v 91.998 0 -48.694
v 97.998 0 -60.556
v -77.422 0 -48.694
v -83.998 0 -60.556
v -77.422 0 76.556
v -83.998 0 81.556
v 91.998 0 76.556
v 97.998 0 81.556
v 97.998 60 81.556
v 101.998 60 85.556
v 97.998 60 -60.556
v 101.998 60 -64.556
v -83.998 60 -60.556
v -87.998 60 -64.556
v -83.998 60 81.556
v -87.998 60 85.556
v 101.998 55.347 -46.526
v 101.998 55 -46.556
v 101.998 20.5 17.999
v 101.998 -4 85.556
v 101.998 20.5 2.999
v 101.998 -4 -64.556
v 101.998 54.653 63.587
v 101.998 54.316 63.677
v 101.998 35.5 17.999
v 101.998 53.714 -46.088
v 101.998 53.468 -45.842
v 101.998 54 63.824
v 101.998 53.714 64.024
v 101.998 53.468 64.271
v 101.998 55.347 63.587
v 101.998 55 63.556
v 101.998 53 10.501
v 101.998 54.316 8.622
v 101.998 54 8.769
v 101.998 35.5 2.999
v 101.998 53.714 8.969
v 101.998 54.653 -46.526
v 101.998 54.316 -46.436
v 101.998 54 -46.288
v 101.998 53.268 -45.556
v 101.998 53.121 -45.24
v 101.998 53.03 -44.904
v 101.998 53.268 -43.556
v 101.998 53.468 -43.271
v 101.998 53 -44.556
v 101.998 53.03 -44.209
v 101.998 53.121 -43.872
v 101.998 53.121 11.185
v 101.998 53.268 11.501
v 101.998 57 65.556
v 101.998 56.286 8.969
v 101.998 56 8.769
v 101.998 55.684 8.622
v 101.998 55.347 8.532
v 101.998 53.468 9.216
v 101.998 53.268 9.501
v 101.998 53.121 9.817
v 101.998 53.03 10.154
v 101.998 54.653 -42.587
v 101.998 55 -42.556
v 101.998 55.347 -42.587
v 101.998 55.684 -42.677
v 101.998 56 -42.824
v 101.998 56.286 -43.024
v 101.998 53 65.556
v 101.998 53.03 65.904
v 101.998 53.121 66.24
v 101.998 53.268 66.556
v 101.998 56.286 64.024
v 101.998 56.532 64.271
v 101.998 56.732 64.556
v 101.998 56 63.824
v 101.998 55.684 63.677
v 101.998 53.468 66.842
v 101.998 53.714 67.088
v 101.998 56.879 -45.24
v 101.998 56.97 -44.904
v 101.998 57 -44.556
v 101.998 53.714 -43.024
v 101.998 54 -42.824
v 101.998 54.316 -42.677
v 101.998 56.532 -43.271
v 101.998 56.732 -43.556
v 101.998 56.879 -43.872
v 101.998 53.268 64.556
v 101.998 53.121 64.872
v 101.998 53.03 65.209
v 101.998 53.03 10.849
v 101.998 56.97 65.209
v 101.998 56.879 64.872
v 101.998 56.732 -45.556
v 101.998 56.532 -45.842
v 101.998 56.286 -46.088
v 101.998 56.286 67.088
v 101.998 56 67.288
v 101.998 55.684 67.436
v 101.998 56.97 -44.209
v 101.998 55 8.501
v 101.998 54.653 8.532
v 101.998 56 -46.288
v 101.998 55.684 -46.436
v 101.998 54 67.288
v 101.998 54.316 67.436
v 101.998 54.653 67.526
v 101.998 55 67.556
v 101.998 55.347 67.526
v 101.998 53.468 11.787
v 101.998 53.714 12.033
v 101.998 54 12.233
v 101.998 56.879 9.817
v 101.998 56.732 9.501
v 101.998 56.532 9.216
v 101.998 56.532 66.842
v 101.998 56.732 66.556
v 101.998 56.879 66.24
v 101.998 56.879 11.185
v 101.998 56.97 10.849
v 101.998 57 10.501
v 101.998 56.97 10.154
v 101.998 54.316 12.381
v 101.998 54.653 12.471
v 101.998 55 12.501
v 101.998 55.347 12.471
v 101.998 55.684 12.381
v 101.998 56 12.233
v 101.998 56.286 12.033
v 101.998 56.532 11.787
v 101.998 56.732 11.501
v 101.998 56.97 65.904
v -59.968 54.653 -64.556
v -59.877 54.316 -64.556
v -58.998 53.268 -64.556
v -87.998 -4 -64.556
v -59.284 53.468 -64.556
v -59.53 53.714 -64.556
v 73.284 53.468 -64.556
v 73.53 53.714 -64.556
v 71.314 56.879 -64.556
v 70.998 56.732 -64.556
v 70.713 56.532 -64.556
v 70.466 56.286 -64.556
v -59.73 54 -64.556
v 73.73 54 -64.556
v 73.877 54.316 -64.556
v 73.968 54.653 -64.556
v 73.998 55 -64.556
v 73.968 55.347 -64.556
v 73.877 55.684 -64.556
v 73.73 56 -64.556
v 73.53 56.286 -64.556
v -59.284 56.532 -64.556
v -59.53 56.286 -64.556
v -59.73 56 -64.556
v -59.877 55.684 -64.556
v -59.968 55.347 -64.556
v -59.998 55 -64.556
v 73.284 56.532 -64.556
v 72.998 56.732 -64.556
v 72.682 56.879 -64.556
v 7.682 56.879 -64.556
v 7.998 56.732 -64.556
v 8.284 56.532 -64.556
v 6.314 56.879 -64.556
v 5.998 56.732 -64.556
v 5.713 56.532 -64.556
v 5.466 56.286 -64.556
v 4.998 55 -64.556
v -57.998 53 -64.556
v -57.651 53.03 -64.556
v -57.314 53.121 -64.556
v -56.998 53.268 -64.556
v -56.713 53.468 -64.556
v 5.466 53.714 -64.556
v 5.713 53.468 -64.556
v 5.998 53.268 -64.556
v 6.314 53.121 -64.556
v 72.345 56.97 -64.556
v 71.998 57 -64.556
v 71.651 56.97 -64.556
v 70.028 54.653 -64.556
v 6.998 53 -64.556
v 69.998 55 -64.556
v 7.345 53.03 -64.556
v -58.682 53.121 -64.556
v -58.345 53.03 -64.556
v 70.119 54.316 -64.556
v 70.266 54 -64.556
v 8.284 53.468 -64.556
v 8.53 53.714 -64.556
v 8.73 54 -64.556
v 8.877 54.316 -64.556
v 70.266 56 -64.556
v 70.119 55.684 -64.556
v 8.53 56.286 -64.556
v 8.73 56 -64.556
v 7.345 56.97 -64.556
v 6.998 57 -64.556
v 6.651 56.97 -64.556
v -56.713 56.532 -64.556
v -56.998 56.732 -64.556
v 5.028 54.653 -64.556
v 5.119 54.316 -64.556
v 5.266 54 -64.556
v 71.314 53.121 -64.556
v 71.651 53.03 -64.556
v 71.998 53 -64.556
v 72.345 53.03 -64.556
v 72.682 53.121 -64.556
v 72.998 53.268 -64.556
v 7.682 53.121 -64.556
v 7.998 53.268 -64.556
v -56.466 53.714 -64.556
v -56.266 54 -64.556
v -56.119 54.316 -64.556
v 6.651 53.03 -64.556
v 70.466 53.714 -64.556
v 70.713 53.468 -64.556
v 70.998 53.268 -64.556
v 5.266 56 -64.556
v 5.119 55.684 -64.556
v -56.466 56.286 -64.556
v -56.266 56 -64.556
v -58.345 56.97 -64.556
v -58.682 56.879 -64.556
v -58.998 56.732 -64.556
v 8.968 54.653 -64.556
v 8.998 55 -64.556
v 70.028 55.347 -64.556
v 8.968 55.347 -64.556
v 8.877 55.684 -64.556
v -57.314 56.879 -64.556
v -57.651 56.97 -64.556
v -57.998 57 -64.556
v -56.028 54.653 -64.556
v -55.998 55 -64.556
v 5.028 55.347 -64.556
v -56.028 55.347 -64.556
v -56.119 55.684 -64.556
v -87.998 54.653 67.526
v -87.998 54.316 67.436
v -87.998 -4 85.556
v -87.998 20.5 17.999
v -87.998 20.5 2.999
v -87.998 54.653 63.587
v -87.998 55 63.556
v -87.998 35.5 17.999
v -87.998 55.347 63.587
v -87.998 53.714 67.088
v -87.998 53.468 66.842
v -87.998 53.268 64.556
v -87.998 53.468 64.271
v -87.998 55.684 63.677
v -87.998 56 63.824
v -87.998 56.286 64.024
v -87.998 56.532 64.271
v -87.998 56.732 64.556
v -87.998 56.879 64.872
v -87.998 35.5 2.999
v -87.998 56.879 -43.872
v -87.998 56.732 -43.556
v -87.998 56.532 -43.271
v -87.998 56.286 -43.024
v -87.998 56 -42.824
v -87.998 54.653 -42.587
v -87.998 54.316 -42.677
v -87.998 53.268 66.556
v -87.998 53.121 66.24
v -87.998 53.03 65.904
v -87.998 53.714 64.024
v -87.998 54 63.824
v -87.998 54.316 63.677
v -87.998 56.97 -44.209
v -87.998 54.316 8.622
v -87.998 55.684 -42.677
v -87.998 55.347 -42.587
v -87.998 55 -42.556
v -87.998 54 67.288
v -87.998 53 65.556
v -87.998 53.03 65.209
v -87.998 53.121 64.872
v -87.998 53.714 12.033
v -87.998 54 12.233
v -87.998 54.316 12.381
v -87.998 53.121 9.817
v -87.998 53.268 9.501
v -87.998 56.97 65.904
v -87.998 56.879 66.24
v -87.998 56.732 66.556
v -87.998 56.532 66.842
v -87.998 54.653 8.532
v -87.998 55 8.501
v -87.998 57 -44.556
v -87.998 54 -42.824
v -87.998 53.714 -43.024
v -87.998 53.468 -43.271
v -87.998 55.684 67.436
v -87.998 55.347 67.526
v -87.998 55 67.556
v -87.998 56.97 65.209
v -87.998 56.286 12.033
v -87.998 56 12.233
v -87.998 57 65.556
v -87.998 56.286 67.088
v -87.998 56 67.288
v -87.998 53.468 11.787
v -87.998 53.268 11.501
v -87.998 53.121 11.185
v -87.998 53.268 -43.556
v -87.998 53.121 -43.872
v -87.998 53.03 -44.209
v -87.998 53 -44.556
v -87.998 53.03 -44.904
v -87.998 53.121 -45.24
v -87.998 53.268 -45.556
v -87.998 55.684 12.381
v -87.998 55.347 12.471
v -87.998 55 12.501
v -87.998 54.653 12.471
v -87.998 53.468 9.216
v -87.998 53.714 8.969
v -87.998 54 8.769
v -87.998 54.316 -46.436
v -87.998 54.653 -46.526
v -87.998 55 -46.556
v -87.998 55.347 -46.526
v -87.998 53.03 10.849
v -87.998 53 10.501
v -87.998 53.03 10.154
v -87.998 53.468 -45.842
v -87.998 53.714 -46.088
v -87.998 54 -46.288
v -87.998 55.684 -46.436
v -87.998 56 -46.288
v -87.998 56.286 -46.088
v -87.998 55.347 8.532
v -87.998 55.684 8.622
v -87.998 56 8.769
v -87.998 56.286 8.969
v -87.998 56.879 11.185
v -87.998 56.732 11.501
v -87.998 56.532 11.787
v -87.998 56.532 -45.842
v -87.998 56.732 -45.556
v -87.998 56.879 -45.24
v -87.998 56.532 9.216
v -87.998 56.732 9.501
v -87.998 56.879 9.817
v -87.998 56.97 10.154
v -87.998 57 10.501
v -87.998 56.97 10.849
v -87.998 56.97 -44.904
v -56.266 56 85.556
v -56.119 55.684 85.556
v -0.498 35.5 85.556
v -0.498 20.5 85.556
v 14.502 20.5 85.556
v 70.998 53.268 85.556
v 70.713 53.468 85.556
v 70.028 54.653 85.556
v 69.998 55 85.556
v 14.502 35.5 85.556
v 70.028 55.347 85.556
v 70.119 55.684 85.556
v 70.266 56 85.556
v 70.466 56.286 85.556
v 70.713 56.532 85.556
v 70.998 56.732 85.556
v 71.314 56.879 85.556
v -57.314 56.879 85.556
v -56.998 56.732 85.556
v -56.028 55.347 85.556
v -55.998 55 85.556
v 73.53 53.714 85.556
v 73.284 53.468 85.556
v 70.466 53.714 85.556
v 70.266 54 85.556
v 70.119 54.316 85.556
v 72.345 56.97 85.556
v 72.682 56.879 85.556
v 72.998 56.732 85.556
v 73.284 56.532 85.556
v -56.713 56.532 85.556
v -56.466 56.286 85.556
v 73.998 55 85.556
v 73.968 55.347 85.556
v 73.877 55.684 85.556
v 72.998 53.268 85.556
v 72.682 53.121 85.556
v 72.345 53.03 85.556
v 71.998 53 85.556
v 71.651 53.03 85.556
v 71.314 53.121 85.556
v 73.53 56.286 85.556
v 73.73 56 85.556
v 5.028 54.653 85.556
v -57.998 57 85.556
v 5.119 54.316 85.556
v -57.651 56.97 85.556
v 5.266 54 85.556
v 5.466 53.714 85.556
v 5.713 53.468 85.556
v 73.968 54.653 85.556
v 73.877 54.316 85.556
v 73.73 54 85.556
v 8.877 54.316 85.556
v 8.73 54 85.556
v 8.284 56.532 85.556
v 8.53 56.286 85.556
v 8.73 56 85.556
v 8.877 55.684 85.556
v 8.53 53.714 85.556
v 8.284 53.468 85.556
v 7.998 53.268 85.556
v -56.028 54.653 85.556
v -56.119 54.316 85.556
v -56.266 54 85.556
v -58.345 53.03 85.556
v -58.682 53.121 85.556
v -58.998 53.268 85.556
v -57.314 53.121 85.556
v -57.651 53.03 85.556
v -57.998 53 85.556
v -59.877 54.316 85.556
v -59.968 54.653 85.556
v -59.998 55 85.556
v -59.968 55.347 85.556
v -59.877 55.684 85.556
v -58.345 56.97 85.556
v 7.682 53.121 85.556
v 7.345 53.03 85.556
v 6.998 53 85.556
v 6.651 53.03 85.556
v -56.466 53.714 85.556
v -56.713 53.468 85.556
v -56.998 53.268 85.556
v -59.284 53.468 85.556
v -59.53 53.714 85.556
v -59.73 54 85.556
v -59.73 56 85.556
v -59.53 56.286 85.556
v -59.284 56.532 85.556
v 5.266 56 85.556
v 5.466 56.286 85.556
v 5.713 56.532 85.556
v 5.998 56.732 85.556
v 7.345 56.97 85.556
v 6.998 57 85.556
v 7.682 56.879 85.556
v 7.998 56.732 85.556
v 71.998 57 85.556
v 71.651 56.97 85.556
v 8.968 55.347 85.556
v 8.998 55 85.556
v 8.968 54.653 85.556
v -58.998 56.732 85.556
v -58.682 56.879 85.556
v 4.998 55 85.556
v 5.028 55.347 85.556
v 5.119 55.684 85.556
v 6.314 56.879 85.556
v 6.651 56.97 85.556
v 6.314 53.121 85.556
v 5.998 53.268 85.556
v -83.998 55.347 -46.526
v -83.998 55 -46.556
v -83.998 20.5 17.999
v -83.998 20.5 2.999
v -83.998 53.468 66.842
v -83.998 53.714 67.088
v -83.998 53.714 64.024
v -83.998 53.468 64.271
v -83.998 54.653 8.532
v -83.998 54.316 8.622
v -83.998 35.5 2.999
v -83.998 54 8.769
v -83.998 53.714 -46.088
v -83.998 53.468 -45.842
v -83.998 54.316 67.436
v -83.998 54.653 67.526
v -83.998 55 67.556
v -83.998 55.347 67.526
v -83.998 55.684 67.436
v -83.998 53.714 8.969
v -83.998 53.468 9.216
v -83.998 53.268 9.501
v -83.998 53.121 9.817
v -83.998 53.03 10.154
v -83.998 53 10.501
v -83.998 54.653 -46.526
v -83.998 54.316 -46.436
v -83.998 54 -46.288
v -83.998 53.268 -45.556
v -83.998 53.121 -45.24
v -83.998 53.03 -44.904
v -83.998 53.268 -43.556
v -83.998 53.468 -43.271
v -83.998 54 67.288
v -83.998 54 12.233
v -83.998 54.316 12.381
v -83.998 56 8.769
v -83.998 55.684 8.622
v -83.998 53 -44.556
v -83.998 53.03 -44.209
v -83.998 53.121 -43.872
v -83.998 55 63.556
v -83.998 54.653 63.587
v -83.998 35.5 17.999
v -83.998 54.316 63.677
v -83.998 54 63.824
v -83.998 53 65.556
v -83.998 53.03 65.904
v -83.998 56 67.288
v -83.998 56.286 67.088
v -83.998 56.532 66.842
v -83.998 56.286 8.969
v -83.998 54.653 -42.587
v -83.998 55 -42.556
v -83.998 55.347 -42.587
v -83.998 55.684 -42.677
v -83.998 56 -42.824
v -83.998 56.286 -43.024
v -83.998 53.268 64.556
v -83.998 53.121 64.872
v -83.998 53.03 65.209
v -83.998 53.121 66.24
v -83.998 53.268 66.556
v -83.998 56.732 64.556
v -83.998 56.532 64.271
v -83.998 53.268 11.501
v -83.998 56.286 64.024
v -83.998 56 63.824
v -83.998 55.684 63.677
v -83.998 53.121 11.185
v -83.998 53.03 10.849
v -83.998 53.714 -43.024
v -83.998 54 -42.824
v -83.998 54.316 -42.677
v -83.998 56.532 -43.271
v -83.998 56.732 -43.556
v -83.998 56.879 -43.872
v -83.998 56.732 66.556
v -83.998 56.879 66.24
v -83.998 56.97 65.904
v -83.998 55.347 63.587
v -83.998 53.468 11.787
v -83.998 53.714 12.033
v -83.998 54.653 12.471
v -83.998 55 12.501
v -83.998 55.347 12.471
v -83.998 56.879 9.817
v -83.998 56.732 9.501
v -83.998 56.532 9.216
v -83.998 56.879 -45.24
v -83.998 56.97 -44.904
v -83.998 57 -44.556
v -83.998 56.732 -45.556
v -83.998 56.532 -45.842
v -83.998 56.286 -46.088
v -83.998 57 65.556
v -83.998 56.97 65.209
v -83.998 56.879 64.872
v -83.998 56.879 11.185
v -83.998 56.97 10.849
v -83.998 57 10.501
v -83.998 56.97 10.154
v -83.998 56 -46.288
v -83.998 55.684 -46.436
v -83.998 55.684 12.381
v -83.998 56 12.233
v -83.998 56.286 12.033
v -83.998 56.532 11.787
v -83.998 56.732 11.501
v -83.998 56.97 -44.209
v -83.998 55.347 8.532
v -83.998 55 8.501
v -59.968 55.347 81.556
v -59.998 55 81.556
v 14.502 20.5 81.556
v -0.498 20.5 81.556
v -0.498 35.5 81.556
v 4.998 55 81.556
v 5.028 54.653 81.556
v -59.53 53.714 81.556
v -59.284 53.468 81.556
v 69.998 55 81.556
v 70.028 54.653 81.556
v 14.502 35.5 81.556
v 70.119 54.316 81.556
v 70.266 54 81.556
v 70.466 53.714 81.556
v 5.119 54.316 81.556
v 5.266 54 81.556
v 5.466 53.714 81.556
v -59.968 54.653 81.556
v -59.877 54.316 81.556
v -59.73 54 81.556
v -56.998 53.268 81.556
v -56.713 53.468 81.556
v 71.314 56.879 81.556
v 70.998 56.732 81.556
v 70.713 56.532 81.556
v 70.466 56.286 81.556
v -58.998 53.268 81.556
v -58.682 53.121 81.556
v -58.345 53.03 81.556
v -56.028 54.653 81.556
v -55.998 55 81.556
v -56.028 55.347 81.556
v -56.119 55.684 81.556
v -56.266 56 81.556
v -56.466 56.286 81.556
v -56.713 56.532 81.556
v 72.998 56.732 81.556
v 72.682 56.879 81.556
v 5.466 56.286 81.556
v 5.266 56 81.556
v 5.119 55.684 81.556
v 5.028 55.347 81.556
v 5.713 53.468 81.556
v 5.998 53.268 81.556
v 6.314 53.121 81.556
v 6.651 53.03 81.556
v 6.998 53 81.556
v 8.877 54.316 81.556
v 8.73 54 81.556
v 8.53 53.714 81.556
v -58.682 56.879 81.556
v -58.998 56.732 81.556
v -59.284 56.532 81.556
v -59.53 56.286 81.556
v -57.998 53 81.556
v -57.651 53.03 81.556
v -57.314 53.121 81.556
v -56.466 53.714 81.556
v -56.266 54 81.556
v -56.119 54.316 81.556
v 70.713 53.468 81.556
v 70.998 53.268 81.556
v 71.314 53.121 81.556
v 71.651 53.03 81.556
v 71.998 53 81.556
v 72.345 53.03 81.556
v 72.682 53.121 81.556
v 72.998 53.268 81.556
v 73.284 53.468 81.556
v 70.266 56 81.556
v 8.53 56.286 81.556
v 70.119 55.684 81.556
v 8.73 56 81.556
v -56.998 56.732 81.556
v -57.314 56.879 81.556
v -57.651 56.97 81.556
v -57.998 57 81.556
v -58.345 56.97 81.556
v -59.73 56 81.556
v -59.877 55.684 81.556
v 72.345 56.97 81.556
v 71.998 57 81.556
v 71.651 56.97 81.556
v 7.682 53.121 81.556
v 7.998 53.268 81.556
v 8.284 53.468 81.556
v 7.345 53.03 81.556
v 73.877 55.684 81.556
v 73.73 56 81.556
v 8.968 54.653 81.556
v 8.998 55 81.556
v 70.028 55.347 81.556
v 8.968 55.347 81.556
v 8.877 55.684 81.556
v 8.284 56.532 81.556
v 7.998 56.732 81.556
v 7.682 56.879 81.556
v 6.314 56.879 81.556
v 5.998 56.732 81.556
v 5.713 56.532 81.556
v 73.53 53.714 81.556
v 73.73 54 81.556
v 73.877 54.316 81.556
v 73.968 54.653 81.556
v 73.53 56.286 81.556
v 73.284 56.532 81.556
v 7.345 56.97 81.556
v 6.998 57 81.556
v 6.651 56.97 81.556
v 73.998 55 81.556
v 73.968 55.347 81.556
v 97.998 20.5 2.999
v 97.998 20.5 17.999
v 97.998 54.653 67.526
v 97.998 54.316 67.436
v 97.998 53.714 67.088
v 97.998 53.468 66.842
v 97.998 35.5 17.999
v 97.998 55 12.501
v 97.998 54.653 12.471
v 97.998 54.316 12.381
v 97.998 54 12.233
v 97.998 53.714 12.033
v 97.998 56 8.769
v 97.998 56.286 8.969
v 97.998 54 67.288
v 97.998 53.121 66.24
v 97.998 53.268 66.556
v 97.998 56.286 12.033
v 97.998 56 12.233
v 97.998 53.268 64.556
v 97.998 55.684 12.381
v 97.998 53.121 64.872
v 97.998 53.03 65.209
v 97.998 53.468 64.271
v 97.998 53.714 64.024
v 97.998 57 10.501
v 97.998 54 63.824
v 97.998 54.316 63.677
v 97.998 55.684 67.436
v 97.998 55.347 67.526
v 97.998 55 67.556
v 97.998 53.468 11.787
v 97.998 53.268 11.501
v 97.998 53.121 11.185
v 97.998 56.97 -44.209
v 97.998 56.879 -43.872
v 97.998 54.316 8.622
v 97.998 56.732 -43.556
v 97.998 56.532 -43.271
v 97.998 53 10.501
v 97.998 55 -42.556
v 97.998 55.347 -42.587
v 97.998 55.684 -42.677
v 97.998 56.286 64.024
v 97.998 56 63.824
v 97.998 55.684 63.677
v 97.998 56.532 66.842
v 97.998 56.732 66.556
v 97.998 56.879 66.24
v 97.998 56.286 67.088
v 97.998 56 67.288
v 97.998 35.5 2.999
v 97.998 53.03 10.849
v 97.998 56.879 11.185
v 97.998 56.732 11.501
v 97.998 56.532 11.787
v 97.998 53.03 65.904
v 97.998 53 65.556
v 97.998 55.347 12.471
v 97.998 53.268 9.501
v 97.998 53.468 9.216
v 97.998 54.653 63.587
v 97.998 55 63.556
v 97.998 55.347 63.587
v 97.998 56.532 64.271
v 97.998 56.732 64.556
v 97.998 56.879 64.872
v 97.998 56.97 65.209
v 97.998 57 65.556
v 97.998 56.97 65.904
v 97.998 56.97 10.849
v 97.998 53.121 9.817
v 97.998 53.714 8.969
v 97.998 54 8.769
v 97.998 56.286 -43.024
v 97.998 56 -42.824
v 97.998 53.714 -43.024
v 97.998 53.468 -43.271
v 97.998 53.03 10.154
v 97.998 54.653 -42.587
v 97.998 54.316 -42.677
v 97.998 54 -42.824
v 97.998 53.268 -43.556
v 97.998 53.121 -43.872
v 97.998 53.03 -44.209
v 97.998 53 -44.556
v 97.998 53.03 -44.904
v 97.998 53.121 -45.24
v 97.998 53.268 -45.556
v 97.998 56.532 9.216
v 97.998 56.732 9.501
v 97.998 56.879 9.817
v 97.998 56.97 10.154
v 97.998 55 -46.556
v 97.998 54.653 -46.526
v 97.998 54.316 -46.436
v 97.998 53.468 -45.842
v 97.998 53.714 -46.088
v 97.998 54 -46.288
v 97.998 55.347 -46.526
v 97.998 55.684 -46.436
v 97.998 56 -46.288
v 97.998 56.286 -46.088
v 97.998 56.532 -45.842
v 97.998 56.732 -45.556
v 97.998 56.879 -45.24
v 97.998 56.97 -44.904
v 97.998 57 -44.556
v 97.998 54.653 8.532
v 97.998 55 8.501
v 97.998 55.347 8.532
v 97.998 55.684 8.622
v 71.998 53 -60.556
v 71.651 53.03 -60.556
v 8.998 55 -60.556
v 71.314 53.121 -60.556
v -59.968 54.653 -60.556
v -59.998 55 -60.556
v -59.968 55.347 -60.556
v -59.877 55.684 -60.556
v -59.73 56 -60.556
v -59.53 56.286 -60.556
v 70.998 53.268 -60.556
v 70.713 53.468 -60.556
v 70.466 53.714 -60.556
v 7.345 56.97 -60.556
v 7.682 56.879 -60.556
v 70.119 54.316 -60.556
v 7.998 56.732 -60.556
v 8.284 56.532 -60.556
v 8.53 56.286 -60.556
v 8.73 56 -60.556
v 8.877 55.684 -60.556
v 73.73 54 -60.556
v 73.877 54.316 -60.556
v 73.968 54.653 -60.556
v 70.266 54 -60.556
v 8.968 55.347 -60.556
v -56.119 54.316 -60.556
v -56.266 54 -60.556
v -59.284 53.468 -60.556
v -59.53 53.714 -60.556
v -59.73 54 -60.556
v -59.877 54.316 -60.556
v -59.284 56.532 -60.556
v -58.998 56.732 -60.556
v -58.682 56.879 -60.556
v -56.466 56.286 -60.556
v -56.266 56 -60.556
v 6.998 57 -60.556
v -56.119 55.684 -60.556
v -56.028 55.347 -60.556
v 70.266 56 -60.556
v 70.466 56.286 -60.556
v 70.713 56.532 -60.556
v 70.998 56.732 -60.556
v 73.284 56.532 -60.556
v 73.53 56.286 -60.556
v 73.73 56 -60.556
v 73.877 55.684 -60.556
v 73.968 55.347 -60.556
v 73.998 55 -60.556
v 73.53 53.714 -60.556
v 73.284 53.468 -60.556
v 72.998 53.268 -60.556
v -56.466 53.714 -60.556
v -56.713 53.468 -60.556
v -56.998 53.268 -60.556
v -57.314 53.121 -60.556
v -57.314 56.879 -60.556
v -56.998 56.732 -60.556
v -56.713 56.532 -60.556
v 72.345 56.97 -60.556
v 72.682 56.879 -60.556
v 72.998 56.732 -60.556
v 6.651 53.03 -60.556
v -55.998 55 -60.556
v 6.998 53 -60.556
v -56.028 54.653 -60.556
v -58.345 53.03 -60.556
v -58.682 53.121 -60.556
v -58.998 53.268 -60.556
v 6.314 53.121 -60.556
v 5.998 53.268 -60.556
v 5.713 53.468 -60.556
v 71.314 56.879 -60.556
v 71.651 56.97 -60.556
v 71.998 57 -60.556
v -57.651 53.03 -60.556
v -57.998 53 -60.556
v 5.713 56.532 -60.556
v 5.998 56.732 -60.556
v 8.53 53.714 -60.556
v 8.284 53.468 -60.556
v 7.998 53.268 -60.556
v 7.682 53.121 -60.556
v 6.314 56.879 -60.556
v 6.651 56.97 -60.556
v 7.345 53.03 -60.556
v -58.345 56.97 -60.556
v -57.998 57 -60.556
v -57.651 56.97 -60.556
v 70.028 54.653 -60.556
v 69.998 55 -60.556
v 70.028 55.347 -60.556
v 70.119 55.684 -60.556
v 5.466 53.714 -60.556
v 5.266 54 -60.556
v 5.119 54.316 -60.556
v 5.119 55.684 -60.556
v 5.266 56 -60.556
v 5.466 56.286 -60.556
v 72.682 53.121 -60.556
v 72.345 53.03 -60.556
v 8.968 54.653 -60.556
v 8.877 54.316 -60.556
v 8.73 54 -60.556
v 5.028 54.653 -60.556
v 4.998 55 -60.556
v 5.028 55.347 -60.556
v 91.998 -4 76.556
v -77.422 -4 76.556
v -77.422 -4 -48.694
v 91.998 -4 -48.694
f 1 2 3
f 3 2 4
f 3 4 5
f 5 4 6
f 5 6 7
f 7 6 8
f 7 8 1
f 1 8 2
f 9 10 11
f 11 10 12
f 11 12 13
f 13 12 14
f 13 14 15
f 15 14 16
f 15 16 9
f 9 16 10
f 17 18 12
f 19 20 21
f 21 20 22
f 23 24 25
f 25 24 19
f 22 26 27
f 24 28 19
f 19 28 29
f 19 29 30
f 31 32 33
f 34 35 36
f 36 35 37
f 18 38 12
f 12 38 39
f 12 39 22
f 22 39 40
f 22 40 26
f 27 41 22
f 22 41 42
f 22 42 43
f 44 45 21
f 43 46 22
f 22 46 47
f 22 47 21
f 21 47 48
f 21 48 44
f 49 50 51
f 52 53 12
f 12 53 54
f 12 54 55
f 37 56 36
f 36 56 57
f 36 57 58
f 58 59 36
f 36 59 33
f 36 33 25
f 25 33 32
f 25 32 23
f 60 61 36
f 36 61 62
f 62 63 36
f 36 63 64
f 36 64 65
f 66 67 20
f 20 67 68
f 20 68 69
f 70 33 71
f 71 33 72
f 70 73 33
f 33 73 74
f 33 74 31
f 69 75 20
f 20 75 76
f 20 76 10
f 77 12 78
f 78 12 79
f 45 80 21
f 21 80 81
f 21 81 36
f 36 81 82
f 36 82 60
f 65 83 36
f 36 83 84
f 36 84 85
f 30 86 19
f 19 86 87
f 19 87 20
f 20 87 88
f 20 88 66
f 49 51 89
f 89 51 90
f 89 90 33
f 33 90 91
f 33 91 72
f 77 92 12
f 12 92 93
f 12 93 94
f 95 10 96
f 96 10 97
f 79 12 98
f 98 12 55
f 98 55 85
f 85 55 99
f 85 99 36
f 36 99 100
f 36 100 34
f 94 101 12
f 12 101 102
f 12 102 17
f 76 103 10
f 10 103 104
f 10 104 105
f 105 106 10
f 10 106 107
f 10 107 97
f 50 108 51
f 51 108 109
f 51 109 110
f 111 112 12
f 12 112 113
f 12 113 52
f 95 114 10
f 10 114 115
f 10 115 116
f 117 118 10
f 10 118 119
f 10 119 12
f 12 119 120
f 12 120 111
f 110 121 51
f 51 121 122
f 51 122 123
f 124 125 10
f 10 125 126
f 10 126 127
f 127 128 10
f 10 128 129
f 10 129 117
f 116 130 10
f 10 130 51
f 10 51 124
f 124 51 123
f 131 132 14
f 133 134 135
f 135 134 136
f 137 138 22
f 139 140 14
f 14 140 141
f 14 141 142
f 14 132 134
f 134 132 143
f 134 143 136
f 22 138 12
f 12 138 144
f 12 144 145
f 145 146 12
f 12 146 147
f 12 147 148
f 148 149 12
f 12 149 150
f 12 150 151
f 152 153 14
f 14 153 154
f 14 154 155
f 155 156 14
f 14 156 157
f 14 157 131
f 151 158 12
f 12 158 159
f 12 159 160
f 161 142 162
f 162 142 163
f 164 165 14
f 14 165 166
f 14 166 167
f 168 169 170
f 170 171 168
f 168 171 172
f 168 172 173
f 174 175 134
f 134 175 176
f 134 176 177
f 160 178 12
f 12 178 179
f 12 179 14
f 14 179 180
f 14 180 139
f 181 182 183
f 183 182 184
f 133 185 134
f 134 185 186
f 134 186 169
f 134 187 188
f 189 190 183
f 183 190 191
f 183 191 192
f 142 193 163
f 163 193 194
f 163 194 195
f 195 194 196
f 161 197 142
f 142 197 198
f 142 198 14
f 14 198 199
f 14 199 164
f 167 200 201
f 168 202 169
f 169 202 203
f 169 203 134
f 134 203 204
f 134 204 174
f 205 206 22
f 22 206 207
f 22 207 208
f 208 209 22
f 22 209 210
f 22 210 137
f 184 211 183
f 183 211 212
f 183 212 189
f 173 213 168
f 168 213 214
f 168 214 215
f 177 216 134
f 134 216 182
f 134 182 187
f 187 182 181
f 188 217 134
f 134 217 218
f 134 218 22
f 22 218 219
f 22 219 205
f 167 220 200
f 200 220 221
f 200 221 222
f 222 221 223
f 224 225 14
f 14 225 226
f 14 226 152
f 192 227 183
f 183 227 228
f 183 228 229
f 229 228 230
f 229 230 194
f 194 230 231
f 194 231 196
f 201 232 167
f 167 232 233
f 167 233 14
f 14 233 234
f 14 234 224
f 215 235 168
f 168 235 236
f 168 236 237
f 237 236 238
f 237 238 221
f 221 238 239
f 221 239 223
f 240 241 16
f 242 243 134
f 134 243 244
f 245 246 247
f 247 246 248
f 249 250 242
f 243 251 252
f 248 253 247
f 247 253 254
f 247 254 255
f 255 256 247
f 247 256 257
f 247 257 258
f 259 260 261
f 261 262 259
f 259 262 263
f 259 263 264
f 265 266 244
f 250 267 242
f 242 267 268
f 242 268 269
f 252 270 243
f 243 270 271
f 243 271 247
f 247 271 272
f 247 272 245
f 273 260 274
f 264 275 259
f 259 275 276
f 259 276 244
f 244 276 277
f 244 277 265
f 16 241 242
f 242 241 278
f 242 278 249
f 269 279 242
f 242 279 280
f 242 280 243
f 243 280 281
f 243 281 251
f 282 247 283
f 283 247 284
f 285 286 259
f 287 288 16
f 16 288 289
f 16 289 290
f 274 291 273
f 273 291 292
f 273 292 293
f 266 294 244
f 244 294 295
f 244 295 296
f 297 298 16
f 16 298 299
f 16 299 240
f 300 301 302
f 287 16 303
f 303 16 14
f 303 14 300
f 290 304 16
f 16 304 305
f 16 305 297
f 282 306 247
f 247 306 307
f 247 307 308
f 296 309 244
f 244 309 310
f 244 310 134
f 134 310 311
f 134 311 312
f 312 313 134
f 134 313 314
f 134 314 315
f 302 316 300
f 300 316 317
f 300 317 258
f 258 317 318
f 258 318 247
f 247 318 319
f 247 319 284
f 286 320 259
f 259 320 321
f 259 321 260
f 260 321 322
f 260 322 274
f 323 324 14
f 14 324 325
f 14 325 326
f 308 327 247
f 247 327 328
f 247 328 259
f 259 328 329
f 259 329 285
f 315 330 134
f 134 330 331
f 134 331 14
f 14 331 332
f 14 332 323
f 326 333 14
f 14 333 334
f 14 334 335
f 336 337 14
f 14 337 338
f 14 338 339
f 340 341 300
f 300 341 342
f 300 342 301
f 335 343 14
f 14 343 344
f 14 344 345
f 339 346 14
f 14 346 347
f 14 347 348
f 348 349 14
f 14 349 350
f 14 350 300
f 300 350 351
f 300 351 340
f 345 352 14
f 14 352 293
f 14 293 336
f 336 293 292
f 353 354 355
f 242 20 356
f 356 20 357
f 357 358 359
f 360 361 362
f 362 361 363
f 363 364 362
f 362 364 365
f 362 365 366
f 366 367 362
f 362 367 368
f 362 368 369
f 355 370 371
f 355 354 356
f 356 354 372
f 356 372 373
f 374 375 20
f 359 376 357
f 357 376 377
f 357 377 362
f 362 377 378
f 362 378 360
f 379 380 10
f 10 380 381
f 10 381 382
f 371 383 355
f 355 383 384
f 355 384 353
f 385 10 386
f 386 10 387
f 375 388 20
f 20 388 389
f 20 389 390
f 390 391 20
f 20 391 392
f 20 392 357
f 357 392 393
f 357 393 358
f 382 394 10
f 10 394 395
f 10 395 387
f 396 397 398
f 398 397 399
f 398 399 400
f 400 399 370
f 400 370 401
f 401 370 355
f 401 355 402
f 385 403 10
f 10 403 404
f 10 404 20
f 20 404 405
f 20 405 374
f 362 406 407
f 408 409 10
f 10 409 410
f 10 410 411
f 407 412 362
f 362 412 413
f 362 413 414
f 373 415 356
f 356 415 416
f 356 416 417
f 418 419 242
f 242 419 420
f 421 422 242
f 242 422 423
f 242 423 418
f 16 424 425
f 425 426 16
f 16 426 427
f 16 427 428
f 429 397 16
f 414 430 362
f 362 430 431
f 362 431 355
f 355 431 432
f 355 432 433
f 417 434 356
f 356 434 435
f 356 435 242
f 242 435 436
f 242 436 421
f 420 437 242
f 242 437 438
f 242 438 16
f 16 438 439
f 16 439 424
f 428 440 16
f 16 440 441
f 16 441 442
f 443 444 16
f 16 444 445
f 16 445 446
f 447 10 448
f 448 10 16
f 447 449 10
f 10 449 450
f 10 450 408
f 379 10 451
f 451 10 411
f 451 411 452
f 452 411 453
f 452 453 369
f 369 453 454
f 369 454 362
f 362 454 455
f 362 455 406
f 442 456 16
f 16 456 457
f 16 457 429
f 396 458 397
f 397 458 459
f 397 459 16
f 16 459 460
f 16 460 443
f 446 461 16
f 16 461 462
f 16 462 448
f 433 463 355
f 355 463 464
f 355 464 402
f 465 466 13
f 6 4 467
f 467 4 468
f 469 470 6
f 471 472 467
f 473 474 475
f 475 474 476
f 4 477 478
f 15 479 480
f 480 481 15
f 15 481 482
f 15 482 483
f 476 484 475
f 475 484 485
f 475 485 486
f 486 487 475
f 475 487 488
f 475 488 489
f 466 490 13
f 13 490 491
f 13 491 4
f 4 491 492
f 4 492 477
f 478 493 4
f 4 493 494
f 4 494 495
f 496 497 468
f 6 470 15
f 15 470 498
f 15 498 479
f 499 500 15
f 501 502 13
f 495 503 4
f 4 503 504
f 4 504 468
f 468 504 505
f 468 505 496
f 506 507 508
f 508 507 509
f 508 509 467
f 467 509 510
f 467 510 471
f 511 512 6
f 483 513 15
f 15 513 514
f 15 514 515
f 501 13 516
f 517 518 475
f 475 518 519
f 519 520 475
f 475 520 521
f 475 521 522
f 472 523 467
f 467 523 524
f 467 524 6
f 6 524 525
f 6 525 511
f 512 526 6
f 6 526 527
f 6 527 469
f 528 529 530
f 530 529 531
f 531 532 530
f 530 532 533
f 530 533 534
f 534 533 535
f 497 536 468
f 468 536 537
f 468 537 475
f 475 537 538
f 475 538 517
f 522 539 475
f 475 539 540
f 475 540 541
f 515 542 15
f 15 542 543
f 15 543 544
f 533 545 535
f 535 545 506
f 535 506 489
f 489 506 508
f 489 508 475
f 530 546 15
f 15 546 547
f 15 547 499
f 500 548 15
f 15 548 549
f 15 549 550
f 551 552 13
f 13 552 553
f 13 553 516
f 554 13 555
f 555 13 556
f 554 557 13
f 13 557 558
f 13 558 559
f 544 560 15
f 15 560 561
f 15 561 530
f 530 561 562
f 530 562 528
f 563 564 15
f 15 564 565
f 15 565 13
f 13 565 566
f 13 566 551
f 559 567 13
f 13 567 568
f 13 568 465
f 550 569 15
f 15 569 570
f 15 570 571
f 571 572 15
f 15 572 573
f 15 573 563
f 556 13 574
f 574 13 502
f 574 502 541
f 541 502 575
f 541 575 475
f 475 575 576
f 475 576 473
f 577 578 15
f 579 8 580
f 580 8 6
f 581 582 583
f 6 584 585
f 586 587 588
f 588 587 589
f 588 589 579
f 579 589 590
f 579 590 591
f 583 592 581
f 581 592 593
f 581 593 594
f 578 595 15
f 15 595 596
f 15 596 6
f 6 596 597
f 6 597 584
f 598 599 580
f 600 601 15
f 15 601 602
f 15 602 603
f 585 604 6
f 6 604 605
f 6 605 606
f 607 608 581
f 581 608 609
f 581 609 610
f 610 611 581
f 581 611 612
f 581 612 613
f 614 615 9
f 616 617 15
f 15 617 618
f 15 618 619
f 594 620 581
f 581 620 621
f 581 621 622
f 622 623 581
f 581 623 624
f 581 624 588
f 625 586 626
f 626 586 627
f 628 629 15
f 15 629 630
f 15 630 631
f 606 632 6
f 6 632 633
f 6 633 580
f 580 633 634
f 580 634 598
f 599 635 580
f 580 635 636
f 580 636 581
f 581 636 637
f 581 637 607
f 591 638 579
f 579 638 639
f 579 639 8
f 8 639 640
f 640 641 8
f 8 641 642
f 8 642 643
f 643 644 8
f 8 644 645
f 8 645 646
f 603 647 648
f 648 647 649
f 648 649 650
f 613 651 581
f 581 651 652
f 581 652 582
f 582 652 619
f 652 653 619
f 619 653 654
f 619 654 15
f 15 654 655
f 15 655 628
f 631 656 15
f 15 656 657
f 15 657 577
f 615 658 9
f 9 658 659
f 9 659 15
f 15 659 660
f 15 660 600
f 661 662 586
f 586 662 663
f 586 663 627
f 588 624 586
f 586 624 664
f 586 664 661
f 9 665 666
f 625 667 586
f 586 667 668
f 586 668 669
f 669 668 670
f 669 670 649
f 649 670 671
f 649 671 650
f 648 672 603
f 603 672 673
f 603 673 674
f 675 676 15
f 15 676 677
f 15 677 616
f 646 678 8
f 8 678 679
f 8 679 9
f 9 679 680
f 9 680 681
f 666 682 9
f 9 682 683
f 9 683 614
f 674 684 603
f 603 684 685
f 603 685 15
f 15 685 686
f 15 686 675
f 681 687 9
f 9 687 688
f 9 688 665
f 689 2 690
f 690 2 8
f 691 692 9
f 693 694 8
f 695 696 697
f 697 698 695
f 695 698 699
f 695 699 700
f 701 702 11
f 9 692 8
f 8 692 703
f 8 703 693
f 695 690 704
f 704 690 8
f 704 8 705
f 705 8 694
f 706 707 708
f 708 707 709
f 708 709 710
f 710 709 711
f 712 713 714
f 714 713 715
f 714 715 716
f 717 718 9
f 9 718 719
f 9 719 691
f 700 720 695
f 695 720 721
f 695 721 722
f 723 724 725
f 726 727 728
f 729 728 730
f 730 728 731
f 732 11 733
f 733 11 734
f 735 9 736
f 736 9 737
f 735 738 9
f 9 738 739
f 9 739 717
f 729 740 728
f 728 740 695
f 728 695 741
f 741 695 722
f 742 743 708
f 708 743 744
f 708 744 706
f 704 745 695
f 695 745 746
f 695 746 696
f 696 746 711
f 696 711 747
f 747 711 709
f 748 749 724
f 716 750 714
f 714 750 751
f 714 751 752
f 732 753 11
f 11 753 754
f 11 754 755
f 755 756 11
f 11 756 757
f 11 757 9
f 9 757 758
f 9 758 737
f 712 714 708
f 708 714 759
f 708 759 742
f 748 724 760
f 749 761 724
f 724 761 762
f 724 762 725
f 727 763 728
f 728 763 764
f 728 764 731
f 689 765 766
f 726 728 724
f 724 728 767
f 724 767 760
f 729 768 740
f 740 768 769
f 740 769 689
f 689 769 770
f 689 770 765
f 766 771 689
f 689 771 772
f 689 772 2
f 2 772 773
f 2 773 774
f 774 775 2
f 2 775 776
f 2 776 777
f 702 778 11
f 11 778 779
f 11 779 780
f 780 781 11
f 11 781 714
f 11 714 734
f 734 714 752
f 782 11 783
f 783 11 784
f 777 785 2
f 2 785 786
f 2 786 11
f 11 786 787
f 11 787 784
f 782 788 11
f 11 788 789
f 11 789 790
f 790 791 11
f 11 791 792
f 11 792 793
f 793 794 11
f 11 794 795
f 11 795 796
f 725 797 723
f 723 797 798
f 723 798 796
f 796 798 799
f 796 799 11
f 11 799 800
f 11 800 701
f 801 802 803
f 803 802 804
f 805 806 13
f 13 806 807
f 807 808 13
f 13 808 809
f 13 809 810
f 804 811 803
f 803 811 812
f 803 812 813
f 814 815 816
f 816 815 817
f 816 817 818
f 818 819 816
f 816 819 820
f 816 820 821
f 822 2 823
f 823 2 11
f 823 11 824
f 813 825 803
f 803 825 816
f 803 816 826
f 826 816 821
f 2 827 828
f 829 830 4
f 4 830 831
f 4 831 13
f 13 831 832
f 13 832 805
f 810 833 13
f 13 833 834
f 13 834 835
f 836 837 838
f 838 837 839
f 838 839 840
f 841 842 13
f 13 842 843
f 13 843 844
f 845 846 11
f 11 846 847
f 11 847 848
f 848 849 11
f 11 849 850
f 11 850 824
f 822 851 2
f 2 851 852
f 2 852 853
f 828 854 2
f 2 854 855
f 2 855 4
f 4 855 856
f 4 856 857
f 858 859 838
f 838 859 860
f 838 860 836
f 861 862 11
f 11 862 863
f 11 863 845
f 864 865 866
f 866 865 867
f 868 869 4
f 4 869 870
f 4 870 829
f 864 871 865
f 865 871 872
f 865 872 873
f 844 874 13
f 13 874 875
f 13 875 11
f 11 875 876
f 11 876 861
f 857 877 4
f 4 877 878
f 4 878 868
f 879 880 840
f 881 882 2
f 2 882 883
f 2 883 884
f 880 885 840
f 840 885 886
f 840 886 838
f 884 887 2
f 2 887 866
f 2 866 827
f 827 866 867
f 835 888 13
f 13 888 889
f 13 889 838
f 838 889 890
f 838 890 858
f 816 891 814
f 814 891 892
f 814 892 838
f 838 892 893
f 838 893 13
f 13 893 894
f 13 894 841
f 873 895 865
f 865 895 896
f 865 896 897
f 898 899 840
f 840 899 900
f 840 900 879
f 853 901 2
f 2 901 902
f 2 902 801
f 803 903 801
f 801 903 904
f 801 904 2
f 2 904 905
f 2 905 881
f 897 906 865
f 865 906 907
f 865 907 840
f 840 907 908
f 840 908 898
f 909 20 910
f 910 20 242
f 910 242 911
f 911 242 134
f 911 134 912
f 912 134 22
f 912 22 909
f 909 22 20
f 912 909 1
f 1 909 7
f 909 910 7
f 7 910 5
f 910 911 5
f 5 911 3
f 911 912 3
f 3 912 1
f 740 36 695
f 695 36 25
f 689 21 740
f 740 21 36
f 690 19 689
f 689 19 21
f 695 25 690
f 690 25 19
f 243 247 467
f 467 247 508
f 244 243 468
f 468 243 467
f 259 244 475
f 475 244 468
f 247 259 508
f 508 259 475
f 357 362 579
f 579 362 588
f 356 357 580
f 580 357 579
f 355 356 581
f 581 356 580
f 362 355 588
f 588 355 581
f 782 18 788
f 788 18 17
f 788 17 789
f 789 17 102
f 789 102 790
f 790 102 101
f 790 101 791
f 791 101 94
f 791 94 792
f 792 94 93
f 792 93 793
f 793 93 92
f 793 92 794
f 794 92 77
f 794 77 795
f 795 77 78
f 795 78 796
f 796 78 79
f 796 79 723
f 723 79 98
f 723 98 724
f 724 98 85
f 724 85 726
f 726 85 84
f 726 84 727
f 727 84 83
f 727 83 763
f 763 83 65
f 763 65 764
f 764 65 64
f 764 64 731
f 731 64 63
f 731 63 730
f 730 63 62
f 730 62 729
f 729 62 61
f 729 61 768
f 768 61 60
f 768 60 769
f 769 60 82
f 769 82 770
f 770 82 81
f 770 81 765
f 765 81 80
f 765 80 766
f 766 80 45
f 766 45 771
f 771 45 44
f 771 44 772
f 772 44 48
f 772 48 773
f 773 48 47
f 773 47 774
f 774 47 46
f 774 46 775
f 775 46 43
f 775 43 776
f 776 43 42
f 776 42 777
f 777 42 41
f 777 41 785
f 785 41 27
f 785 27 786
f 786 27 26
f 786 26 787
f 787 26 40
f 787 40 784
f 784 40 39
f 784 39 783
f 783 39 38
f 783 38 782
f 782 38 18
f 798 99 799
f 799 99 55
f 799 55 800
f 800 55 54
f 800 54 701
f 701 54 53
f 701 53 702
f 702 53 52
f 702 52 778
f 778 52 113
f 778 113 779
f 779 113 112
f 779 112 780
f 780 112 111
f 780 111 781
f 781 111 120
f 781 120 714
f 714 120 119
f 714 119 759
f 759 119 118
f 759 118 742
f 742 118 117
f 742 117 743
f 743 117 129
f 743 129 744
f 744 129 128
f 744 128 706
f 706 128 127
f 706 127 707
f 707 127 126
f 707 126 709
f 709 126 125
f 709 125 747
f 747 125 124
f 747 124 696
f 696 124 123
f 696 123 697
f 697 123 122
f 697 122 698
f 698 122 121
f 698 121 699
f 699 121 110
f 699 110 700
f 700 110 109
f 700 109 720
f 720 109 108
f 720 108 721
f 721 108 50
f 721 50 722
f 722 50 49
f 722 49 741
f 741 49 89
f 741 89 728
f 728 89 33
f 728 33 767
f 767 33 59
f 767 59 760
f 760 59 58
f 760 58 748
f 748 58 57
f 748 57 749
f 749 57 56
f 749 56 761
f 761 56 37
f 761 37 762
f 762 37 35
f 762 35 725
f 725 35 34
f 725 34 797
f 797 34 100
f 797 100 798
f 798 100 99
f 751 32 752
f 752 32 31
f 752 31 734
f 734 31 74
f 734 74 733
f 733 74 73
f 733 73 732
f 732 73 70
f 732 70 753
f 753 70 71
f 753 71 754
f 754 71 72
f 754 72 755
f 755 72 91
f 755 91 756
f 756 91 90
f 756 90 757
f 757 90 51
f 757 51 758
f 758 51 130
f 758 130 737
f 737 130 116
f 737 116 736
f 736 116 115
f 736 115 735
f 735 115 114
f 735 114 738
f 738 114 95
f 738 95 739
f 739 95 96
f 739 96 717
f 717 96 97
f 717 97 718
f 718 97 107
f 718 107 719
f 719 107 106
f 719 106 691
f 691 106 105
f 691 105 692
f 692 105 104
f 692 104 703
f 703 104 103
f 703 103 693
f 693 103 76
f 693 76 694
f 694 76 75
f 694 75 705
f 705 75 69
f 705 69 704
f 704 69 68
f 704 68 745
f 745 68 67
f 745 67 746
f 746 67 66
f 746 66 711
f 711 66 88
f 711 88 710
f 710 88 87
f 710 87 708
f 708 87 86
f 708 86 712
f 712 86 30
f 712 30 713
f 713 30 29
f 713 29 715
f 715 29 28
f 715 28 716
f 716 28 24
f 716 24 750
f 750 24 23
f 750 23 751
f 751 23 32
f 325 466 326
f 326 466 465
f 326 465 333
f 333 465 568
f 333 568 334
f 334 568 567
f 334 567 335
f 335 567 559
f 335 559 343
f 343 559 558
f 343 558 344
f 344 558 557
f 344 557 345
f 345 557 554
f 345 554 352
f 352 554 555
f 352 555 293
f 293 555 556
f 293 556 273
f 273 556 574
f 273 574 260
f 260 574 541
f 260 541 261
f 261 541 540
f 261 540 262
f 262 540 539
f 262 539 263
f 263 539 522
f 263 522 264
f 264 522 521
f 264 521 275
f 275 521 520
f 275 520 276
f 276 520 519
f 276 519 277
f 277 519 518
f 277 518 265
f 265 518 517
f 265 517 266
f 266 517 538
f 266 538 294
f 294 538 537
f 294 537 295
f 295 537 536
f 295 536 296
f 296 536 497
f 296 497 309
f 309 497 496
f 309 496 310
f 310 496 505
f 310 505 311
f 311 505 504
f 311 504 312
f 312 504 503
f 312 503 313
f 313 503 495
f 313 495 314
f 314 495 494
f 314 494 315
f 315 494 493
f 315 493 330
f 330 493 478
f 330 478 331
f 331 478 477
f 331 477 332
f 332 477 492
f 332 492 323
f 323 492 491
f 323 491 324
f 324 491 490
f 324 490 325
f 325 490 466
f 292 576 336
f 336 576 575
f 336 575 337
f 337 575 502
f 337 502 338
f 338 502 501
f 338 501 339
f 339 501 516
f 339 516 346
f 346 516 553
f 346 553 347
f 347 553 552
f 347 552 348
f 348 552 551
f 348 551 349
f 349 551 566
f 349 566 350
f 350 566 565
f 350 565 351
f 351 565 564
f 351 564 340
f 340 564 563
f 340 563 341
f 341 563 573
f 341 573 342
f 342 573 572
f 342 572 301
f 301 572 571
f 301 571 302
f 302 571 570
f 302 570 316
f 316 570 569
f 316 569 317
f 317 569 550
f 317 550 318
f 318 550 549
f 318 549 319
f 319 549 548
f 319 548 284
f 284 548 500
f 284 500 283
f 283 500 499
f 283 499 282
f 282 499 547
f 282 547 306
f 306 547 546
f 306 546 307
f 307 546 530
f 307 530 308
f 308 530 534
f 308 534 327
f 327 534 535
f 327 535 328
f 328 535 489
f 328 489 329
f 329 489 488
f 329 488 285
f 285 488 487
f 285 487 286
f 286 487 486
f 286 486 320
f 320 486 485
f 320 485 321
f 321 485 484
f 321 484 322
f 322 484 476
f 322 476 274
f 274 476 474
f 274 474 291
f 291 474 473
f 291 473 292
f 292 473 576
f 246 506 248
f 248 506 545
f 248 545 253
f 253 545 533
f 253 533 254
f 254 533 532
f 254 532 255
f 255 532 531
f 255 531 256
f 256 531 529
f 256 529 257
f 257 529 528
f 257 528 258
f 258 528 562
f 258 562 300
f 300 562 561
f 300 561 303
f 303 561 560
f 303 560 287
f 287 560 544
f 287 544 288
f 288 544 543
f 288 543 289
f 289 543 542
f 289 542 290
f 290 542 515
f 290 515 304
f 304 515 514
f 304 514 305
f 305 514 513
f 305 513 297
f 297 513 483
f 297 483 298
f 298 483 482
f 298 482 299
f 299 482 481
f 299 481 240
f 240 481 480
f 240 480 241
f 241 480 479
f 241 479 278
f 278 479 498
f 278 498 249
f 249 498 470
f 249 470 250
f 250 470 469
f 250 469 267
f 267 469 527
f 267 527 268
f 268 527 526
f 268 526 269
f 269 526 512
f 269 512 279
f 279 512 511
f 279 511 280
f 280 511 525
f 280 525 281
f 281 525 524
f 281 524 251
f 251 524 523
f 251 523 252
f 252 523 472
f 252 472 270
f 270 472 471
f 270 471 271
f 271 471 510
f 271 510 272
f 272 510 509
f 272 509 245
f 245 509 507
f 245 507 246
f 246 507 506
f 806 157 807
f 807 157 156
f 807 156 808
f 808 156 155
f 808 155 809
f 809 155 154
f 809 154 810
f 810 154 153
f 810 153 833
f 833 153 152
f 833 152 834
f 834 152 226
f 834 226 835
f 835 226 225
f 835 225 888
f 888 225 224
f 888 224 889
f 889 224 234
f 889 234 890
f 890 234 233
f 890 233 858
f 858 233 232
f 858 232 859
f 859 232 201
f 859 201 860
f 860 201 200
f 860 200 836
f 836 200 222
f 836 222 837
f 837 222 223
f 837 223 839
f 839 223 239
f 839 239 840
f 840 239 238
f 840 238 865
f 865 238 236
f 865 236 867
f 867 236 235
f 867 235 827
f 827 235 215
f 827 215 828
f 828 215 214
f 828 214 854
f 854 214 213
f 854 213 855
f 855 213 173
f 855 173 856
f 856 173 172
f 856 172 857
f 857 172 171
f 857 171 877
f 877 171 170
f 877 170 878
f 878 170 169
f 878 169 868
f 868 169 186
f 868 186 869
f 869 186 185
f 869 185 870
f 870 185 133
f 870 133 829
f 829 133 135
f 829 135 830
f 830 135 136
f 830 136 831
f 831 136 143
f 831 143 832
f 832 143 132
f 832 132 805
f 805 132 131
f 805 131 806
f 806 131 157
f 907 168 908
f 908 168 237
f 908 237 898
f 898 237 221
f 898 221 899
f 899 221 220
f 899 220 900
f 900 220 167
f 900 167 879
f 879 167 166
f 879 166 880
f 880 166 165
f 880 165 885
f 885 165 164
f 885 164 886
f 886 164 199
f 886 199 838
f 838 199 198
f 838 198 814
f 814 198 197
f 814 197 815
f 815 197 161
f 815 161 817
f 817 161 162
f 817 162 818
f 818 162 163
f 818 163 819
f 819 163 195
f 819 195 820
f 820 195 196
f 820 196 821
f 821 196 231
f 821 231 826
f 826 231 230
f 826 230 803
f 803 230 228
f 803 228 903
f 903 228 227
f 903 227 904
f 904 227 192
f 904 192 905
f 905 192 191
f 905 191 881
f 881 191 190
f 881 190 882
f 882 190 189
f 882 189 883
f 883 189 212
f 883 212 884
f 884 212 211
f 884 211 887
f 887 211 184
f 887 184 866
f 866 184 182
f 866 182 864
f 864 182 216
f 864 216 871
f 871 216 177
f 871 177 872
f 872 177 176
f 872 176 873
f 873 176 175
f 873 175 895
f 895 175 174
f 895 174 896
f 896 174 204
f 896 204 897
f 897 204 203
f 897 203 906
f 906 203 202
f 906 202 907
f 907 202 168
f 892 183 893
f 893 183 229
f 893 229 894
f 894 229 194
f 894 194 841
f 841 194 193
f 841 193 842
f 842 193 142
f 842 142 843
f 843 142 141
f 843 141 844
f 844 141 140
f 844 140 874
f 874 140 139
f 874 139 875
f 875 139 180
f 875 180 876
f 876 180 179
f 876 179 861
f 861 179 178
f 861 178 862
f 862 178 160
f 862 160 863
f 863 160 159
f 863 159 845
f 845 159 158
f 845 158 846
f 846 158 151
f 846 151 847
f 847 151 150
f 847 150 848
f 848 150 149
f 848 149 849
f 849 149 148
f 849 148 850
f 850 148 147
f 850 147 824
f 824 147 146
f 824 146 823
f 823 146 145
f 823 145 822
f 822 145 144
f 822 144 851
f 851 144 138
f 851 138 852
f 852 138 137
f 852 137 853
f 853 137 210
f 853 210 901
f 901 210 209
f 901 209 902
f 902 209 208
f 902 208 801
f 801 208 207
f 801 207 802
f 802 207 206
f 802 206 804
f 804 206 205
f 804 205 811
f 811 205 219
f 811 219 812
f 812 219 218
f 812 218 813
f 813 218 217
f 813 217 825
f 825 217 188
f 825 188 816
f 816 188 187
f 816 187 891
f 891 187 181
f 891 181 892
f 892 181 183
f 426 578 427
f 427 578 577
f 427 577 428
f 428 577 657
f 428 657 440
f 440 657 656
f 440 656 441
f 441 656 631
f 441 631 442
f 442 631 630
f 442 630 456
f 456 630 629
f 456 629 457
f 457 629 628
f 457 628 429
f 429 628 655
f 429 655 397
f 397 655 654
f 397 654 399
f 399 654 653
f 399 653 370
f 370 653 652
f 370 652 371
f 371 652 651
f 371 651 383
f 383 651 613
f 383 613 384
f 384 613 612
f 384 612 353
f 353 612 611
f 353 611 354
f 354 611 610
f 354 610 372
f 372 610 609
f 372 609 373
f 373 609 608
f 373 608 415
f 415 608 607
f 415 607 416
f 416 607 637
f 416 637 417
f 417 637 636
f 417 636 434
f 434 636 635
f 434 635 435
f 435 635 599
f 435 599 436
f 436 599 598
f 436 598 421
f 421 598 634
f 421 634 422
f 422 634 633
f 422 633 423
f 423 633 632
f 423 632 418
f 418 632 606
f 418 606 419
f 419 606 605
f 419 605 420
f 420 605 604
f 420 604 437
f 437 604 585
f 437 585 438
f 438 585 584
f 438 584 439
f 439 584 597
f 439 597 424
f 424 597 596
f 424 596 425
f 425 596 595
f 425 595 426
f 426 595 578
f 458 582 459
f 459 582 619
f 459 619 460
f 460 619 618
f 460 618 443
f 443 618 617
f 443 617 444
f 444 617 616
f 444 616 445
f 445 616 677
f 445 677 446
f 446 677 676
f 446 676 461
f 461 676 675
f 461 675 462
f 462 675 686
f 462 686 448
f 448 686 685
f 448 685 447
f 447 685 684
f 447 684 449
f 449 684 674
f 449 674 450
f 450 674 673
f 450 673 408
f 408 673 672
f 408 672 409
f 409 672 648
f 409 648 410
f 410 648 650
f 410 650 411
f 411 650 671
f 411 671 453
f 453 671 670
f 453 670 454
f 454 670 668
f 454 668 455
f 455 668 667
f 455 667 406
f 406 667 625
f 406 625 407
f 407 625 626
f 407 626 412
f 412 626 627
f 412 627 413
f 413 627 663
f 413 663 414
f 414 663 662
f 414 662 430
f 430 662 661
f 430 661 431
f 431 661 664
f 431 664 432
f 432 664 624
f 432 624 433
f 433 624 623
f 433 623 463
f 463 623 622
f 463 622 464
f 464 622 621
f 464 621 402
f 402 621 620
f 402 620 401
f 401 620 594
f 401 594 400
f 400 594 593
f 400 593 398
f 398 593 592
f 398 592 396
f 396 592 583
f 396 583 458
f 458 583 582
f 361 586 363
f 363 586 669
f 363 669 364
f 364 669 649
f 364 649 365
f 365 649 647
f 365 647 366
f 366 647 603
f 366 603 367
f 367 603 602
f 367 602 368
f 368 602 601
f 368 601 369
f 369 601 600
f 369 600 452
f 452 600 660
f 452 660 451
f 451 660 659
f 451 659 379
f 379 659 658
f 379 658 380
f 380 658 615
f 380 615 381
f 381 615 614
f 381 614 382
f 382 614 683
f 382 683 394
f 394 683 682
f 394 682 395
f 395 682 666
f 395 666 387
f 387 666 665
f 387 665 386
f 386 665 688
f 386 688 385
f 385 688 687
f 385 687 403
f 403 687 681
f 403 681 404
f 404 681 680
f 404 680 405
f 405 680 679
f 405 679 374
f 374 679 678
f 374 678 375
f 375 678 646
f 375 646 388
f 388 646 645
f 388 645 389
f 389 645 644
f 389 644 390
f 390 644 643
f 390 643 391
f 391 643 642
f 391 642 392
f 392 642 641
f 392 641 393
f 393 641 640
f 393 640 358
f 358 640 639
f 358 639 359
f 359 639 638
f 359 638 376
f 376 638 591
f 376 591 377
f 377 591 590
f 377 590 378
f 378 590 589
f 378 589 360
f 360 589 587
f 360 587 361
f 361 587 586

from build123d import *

# Parameters (mm, degrees)
SKETCH1_W           = 189.996176074
SKETCH1_H           = 150.112754898
BOSS_EXTRUDE1_DEPTH = 60
SKETCH2_W           = 189.996176074
SKETCH2_H           = 150.112754898
BOSS_EXTRUDE2_DEPTH = 4
SKETCH3_W           = 169.42
SKETCH3_H           = 125.25
CUT_EXTRUDE1_DEPTH  = 4
SKETCH4_W           = 15
SKETCH4_H           = 15
CUT_EXTRUDE2_DEPTH  = 222
SKETCH6_W           = 15
SKETCH6_H           = 15
CUT_EXTRUDE3_DEPTH  = 50
SKETCH7_R           = 2
CUT_EXTRUDE4_DEPTH  = 220
SKETCH8_R           = 2
CUT_EXTRUDE5_DEPTH  = 220


with BuildPart() as part:
    # Sketch1 → Boss-Extrude1 (new body)
    with BuildSketch(Plane(origin=(0, 0, 0), x_dir=(1, 0, 0), z_dir=(0, 1, 0))):
        with Locations((7, -10.5)):
            Rectangle(SKETCH1_W, SKETCH1_H)
        Polygon((97.998088037, 60.556377449), (97.998088037, -81.556377449), (-83.998088037, -81.556377449), (-83.998088037, 60.556377449), (16.315151501, 60.556377449), align=None, mode=Mode.SUBTRACT)
    extrude(amount=BOSS_EXTRUDE1_DEPTH)

    # Sketch2 → Boss-Extrude2 (add)
    with BuildSketch(Plane.XZ):
        with Locations((7, 10.5)):
            Rectangle(SKETCH2_W, SKETCH2_H)
    extrude(amount=BOSS_EXTRUDE2_DEPTH)

    # Sketch3 → Cut-Extrude1 (cut)
    with BuildSketch(Plane(origin=(0, 0, 0), x_dir=(1, 0, 0), z_dir=(0, 1, 0))):
        with Locations((7.288088037, -13.931377449)):
            Rectangle(SKETCH3_W, SKETCH3_H)
    extrude(amount=-CUT_EXTRUDE1_DEPTH, mode=Mode.SUBTRACT)

    # Sketch4 → Cut-Extrude2 (cut)
    with BuildSketch(Plane.ZY.offset(87.998088037)):
        with Locations((10.498622551, 28)):
            Rectangle(SKETCH4_W, SKETCH4_H)
    extrude(amount=-CUT_EXTRUDE2_DEPTH, mode=Mode.SUBTRACT)

    # Sketch6 → Cut-Extrude3 (cut)
    with BuildSketch(Plane.XY.offset(85.556377449)):
        with Locations((7.001911963, 28)):
            Rectangle(SKETCH6_W, SKETCH6_H)
    extrude(amount=-CUT_EXTRUDE3_DEPTH, mode=Mode.SUBTRACT)

    # Sketch7 → Cut-Extrude4 (cut)
    with BuildSketch(Plane(origin=(101.998088037, 0, 0), x_dir=(0, 0, -1), z_dir=(1, 0, 0))):
        with Locations((-65.556377449, 55)):
            Circle(SKETCH7_R)
        with Locations((-10.501377449, 55)):
            Circle(SKETCH7_R)
        with Locations((44.556377449, 55)):
            Circle(SKETCH7_R)
    extrude(amount=-CUT_EXTRUDE4_DEPTH, mode=Mode.SUBTRACT)

    # Sketch8 → Cut-Extrude5 (cut)
    with BuildSketch(Plane(origin=(0, 0, -64.556377449), x_dir=(-1, 0, 0), z_dir=(0, 0, -1))):
        with Locations((-71.998088037, 55)):
            Circle(SKETCH8_R)
        with Locations((-6.998088037, 55)):
            Circle(SKETCH8_R)
        with Locations((57.998088037, 55)):
            Circle(SKETCH8_R)
    extrude(amount=-CUT_EXTRUDE5_DEPTH, mode=Mode.SUBTRACT)


solid = part.part
